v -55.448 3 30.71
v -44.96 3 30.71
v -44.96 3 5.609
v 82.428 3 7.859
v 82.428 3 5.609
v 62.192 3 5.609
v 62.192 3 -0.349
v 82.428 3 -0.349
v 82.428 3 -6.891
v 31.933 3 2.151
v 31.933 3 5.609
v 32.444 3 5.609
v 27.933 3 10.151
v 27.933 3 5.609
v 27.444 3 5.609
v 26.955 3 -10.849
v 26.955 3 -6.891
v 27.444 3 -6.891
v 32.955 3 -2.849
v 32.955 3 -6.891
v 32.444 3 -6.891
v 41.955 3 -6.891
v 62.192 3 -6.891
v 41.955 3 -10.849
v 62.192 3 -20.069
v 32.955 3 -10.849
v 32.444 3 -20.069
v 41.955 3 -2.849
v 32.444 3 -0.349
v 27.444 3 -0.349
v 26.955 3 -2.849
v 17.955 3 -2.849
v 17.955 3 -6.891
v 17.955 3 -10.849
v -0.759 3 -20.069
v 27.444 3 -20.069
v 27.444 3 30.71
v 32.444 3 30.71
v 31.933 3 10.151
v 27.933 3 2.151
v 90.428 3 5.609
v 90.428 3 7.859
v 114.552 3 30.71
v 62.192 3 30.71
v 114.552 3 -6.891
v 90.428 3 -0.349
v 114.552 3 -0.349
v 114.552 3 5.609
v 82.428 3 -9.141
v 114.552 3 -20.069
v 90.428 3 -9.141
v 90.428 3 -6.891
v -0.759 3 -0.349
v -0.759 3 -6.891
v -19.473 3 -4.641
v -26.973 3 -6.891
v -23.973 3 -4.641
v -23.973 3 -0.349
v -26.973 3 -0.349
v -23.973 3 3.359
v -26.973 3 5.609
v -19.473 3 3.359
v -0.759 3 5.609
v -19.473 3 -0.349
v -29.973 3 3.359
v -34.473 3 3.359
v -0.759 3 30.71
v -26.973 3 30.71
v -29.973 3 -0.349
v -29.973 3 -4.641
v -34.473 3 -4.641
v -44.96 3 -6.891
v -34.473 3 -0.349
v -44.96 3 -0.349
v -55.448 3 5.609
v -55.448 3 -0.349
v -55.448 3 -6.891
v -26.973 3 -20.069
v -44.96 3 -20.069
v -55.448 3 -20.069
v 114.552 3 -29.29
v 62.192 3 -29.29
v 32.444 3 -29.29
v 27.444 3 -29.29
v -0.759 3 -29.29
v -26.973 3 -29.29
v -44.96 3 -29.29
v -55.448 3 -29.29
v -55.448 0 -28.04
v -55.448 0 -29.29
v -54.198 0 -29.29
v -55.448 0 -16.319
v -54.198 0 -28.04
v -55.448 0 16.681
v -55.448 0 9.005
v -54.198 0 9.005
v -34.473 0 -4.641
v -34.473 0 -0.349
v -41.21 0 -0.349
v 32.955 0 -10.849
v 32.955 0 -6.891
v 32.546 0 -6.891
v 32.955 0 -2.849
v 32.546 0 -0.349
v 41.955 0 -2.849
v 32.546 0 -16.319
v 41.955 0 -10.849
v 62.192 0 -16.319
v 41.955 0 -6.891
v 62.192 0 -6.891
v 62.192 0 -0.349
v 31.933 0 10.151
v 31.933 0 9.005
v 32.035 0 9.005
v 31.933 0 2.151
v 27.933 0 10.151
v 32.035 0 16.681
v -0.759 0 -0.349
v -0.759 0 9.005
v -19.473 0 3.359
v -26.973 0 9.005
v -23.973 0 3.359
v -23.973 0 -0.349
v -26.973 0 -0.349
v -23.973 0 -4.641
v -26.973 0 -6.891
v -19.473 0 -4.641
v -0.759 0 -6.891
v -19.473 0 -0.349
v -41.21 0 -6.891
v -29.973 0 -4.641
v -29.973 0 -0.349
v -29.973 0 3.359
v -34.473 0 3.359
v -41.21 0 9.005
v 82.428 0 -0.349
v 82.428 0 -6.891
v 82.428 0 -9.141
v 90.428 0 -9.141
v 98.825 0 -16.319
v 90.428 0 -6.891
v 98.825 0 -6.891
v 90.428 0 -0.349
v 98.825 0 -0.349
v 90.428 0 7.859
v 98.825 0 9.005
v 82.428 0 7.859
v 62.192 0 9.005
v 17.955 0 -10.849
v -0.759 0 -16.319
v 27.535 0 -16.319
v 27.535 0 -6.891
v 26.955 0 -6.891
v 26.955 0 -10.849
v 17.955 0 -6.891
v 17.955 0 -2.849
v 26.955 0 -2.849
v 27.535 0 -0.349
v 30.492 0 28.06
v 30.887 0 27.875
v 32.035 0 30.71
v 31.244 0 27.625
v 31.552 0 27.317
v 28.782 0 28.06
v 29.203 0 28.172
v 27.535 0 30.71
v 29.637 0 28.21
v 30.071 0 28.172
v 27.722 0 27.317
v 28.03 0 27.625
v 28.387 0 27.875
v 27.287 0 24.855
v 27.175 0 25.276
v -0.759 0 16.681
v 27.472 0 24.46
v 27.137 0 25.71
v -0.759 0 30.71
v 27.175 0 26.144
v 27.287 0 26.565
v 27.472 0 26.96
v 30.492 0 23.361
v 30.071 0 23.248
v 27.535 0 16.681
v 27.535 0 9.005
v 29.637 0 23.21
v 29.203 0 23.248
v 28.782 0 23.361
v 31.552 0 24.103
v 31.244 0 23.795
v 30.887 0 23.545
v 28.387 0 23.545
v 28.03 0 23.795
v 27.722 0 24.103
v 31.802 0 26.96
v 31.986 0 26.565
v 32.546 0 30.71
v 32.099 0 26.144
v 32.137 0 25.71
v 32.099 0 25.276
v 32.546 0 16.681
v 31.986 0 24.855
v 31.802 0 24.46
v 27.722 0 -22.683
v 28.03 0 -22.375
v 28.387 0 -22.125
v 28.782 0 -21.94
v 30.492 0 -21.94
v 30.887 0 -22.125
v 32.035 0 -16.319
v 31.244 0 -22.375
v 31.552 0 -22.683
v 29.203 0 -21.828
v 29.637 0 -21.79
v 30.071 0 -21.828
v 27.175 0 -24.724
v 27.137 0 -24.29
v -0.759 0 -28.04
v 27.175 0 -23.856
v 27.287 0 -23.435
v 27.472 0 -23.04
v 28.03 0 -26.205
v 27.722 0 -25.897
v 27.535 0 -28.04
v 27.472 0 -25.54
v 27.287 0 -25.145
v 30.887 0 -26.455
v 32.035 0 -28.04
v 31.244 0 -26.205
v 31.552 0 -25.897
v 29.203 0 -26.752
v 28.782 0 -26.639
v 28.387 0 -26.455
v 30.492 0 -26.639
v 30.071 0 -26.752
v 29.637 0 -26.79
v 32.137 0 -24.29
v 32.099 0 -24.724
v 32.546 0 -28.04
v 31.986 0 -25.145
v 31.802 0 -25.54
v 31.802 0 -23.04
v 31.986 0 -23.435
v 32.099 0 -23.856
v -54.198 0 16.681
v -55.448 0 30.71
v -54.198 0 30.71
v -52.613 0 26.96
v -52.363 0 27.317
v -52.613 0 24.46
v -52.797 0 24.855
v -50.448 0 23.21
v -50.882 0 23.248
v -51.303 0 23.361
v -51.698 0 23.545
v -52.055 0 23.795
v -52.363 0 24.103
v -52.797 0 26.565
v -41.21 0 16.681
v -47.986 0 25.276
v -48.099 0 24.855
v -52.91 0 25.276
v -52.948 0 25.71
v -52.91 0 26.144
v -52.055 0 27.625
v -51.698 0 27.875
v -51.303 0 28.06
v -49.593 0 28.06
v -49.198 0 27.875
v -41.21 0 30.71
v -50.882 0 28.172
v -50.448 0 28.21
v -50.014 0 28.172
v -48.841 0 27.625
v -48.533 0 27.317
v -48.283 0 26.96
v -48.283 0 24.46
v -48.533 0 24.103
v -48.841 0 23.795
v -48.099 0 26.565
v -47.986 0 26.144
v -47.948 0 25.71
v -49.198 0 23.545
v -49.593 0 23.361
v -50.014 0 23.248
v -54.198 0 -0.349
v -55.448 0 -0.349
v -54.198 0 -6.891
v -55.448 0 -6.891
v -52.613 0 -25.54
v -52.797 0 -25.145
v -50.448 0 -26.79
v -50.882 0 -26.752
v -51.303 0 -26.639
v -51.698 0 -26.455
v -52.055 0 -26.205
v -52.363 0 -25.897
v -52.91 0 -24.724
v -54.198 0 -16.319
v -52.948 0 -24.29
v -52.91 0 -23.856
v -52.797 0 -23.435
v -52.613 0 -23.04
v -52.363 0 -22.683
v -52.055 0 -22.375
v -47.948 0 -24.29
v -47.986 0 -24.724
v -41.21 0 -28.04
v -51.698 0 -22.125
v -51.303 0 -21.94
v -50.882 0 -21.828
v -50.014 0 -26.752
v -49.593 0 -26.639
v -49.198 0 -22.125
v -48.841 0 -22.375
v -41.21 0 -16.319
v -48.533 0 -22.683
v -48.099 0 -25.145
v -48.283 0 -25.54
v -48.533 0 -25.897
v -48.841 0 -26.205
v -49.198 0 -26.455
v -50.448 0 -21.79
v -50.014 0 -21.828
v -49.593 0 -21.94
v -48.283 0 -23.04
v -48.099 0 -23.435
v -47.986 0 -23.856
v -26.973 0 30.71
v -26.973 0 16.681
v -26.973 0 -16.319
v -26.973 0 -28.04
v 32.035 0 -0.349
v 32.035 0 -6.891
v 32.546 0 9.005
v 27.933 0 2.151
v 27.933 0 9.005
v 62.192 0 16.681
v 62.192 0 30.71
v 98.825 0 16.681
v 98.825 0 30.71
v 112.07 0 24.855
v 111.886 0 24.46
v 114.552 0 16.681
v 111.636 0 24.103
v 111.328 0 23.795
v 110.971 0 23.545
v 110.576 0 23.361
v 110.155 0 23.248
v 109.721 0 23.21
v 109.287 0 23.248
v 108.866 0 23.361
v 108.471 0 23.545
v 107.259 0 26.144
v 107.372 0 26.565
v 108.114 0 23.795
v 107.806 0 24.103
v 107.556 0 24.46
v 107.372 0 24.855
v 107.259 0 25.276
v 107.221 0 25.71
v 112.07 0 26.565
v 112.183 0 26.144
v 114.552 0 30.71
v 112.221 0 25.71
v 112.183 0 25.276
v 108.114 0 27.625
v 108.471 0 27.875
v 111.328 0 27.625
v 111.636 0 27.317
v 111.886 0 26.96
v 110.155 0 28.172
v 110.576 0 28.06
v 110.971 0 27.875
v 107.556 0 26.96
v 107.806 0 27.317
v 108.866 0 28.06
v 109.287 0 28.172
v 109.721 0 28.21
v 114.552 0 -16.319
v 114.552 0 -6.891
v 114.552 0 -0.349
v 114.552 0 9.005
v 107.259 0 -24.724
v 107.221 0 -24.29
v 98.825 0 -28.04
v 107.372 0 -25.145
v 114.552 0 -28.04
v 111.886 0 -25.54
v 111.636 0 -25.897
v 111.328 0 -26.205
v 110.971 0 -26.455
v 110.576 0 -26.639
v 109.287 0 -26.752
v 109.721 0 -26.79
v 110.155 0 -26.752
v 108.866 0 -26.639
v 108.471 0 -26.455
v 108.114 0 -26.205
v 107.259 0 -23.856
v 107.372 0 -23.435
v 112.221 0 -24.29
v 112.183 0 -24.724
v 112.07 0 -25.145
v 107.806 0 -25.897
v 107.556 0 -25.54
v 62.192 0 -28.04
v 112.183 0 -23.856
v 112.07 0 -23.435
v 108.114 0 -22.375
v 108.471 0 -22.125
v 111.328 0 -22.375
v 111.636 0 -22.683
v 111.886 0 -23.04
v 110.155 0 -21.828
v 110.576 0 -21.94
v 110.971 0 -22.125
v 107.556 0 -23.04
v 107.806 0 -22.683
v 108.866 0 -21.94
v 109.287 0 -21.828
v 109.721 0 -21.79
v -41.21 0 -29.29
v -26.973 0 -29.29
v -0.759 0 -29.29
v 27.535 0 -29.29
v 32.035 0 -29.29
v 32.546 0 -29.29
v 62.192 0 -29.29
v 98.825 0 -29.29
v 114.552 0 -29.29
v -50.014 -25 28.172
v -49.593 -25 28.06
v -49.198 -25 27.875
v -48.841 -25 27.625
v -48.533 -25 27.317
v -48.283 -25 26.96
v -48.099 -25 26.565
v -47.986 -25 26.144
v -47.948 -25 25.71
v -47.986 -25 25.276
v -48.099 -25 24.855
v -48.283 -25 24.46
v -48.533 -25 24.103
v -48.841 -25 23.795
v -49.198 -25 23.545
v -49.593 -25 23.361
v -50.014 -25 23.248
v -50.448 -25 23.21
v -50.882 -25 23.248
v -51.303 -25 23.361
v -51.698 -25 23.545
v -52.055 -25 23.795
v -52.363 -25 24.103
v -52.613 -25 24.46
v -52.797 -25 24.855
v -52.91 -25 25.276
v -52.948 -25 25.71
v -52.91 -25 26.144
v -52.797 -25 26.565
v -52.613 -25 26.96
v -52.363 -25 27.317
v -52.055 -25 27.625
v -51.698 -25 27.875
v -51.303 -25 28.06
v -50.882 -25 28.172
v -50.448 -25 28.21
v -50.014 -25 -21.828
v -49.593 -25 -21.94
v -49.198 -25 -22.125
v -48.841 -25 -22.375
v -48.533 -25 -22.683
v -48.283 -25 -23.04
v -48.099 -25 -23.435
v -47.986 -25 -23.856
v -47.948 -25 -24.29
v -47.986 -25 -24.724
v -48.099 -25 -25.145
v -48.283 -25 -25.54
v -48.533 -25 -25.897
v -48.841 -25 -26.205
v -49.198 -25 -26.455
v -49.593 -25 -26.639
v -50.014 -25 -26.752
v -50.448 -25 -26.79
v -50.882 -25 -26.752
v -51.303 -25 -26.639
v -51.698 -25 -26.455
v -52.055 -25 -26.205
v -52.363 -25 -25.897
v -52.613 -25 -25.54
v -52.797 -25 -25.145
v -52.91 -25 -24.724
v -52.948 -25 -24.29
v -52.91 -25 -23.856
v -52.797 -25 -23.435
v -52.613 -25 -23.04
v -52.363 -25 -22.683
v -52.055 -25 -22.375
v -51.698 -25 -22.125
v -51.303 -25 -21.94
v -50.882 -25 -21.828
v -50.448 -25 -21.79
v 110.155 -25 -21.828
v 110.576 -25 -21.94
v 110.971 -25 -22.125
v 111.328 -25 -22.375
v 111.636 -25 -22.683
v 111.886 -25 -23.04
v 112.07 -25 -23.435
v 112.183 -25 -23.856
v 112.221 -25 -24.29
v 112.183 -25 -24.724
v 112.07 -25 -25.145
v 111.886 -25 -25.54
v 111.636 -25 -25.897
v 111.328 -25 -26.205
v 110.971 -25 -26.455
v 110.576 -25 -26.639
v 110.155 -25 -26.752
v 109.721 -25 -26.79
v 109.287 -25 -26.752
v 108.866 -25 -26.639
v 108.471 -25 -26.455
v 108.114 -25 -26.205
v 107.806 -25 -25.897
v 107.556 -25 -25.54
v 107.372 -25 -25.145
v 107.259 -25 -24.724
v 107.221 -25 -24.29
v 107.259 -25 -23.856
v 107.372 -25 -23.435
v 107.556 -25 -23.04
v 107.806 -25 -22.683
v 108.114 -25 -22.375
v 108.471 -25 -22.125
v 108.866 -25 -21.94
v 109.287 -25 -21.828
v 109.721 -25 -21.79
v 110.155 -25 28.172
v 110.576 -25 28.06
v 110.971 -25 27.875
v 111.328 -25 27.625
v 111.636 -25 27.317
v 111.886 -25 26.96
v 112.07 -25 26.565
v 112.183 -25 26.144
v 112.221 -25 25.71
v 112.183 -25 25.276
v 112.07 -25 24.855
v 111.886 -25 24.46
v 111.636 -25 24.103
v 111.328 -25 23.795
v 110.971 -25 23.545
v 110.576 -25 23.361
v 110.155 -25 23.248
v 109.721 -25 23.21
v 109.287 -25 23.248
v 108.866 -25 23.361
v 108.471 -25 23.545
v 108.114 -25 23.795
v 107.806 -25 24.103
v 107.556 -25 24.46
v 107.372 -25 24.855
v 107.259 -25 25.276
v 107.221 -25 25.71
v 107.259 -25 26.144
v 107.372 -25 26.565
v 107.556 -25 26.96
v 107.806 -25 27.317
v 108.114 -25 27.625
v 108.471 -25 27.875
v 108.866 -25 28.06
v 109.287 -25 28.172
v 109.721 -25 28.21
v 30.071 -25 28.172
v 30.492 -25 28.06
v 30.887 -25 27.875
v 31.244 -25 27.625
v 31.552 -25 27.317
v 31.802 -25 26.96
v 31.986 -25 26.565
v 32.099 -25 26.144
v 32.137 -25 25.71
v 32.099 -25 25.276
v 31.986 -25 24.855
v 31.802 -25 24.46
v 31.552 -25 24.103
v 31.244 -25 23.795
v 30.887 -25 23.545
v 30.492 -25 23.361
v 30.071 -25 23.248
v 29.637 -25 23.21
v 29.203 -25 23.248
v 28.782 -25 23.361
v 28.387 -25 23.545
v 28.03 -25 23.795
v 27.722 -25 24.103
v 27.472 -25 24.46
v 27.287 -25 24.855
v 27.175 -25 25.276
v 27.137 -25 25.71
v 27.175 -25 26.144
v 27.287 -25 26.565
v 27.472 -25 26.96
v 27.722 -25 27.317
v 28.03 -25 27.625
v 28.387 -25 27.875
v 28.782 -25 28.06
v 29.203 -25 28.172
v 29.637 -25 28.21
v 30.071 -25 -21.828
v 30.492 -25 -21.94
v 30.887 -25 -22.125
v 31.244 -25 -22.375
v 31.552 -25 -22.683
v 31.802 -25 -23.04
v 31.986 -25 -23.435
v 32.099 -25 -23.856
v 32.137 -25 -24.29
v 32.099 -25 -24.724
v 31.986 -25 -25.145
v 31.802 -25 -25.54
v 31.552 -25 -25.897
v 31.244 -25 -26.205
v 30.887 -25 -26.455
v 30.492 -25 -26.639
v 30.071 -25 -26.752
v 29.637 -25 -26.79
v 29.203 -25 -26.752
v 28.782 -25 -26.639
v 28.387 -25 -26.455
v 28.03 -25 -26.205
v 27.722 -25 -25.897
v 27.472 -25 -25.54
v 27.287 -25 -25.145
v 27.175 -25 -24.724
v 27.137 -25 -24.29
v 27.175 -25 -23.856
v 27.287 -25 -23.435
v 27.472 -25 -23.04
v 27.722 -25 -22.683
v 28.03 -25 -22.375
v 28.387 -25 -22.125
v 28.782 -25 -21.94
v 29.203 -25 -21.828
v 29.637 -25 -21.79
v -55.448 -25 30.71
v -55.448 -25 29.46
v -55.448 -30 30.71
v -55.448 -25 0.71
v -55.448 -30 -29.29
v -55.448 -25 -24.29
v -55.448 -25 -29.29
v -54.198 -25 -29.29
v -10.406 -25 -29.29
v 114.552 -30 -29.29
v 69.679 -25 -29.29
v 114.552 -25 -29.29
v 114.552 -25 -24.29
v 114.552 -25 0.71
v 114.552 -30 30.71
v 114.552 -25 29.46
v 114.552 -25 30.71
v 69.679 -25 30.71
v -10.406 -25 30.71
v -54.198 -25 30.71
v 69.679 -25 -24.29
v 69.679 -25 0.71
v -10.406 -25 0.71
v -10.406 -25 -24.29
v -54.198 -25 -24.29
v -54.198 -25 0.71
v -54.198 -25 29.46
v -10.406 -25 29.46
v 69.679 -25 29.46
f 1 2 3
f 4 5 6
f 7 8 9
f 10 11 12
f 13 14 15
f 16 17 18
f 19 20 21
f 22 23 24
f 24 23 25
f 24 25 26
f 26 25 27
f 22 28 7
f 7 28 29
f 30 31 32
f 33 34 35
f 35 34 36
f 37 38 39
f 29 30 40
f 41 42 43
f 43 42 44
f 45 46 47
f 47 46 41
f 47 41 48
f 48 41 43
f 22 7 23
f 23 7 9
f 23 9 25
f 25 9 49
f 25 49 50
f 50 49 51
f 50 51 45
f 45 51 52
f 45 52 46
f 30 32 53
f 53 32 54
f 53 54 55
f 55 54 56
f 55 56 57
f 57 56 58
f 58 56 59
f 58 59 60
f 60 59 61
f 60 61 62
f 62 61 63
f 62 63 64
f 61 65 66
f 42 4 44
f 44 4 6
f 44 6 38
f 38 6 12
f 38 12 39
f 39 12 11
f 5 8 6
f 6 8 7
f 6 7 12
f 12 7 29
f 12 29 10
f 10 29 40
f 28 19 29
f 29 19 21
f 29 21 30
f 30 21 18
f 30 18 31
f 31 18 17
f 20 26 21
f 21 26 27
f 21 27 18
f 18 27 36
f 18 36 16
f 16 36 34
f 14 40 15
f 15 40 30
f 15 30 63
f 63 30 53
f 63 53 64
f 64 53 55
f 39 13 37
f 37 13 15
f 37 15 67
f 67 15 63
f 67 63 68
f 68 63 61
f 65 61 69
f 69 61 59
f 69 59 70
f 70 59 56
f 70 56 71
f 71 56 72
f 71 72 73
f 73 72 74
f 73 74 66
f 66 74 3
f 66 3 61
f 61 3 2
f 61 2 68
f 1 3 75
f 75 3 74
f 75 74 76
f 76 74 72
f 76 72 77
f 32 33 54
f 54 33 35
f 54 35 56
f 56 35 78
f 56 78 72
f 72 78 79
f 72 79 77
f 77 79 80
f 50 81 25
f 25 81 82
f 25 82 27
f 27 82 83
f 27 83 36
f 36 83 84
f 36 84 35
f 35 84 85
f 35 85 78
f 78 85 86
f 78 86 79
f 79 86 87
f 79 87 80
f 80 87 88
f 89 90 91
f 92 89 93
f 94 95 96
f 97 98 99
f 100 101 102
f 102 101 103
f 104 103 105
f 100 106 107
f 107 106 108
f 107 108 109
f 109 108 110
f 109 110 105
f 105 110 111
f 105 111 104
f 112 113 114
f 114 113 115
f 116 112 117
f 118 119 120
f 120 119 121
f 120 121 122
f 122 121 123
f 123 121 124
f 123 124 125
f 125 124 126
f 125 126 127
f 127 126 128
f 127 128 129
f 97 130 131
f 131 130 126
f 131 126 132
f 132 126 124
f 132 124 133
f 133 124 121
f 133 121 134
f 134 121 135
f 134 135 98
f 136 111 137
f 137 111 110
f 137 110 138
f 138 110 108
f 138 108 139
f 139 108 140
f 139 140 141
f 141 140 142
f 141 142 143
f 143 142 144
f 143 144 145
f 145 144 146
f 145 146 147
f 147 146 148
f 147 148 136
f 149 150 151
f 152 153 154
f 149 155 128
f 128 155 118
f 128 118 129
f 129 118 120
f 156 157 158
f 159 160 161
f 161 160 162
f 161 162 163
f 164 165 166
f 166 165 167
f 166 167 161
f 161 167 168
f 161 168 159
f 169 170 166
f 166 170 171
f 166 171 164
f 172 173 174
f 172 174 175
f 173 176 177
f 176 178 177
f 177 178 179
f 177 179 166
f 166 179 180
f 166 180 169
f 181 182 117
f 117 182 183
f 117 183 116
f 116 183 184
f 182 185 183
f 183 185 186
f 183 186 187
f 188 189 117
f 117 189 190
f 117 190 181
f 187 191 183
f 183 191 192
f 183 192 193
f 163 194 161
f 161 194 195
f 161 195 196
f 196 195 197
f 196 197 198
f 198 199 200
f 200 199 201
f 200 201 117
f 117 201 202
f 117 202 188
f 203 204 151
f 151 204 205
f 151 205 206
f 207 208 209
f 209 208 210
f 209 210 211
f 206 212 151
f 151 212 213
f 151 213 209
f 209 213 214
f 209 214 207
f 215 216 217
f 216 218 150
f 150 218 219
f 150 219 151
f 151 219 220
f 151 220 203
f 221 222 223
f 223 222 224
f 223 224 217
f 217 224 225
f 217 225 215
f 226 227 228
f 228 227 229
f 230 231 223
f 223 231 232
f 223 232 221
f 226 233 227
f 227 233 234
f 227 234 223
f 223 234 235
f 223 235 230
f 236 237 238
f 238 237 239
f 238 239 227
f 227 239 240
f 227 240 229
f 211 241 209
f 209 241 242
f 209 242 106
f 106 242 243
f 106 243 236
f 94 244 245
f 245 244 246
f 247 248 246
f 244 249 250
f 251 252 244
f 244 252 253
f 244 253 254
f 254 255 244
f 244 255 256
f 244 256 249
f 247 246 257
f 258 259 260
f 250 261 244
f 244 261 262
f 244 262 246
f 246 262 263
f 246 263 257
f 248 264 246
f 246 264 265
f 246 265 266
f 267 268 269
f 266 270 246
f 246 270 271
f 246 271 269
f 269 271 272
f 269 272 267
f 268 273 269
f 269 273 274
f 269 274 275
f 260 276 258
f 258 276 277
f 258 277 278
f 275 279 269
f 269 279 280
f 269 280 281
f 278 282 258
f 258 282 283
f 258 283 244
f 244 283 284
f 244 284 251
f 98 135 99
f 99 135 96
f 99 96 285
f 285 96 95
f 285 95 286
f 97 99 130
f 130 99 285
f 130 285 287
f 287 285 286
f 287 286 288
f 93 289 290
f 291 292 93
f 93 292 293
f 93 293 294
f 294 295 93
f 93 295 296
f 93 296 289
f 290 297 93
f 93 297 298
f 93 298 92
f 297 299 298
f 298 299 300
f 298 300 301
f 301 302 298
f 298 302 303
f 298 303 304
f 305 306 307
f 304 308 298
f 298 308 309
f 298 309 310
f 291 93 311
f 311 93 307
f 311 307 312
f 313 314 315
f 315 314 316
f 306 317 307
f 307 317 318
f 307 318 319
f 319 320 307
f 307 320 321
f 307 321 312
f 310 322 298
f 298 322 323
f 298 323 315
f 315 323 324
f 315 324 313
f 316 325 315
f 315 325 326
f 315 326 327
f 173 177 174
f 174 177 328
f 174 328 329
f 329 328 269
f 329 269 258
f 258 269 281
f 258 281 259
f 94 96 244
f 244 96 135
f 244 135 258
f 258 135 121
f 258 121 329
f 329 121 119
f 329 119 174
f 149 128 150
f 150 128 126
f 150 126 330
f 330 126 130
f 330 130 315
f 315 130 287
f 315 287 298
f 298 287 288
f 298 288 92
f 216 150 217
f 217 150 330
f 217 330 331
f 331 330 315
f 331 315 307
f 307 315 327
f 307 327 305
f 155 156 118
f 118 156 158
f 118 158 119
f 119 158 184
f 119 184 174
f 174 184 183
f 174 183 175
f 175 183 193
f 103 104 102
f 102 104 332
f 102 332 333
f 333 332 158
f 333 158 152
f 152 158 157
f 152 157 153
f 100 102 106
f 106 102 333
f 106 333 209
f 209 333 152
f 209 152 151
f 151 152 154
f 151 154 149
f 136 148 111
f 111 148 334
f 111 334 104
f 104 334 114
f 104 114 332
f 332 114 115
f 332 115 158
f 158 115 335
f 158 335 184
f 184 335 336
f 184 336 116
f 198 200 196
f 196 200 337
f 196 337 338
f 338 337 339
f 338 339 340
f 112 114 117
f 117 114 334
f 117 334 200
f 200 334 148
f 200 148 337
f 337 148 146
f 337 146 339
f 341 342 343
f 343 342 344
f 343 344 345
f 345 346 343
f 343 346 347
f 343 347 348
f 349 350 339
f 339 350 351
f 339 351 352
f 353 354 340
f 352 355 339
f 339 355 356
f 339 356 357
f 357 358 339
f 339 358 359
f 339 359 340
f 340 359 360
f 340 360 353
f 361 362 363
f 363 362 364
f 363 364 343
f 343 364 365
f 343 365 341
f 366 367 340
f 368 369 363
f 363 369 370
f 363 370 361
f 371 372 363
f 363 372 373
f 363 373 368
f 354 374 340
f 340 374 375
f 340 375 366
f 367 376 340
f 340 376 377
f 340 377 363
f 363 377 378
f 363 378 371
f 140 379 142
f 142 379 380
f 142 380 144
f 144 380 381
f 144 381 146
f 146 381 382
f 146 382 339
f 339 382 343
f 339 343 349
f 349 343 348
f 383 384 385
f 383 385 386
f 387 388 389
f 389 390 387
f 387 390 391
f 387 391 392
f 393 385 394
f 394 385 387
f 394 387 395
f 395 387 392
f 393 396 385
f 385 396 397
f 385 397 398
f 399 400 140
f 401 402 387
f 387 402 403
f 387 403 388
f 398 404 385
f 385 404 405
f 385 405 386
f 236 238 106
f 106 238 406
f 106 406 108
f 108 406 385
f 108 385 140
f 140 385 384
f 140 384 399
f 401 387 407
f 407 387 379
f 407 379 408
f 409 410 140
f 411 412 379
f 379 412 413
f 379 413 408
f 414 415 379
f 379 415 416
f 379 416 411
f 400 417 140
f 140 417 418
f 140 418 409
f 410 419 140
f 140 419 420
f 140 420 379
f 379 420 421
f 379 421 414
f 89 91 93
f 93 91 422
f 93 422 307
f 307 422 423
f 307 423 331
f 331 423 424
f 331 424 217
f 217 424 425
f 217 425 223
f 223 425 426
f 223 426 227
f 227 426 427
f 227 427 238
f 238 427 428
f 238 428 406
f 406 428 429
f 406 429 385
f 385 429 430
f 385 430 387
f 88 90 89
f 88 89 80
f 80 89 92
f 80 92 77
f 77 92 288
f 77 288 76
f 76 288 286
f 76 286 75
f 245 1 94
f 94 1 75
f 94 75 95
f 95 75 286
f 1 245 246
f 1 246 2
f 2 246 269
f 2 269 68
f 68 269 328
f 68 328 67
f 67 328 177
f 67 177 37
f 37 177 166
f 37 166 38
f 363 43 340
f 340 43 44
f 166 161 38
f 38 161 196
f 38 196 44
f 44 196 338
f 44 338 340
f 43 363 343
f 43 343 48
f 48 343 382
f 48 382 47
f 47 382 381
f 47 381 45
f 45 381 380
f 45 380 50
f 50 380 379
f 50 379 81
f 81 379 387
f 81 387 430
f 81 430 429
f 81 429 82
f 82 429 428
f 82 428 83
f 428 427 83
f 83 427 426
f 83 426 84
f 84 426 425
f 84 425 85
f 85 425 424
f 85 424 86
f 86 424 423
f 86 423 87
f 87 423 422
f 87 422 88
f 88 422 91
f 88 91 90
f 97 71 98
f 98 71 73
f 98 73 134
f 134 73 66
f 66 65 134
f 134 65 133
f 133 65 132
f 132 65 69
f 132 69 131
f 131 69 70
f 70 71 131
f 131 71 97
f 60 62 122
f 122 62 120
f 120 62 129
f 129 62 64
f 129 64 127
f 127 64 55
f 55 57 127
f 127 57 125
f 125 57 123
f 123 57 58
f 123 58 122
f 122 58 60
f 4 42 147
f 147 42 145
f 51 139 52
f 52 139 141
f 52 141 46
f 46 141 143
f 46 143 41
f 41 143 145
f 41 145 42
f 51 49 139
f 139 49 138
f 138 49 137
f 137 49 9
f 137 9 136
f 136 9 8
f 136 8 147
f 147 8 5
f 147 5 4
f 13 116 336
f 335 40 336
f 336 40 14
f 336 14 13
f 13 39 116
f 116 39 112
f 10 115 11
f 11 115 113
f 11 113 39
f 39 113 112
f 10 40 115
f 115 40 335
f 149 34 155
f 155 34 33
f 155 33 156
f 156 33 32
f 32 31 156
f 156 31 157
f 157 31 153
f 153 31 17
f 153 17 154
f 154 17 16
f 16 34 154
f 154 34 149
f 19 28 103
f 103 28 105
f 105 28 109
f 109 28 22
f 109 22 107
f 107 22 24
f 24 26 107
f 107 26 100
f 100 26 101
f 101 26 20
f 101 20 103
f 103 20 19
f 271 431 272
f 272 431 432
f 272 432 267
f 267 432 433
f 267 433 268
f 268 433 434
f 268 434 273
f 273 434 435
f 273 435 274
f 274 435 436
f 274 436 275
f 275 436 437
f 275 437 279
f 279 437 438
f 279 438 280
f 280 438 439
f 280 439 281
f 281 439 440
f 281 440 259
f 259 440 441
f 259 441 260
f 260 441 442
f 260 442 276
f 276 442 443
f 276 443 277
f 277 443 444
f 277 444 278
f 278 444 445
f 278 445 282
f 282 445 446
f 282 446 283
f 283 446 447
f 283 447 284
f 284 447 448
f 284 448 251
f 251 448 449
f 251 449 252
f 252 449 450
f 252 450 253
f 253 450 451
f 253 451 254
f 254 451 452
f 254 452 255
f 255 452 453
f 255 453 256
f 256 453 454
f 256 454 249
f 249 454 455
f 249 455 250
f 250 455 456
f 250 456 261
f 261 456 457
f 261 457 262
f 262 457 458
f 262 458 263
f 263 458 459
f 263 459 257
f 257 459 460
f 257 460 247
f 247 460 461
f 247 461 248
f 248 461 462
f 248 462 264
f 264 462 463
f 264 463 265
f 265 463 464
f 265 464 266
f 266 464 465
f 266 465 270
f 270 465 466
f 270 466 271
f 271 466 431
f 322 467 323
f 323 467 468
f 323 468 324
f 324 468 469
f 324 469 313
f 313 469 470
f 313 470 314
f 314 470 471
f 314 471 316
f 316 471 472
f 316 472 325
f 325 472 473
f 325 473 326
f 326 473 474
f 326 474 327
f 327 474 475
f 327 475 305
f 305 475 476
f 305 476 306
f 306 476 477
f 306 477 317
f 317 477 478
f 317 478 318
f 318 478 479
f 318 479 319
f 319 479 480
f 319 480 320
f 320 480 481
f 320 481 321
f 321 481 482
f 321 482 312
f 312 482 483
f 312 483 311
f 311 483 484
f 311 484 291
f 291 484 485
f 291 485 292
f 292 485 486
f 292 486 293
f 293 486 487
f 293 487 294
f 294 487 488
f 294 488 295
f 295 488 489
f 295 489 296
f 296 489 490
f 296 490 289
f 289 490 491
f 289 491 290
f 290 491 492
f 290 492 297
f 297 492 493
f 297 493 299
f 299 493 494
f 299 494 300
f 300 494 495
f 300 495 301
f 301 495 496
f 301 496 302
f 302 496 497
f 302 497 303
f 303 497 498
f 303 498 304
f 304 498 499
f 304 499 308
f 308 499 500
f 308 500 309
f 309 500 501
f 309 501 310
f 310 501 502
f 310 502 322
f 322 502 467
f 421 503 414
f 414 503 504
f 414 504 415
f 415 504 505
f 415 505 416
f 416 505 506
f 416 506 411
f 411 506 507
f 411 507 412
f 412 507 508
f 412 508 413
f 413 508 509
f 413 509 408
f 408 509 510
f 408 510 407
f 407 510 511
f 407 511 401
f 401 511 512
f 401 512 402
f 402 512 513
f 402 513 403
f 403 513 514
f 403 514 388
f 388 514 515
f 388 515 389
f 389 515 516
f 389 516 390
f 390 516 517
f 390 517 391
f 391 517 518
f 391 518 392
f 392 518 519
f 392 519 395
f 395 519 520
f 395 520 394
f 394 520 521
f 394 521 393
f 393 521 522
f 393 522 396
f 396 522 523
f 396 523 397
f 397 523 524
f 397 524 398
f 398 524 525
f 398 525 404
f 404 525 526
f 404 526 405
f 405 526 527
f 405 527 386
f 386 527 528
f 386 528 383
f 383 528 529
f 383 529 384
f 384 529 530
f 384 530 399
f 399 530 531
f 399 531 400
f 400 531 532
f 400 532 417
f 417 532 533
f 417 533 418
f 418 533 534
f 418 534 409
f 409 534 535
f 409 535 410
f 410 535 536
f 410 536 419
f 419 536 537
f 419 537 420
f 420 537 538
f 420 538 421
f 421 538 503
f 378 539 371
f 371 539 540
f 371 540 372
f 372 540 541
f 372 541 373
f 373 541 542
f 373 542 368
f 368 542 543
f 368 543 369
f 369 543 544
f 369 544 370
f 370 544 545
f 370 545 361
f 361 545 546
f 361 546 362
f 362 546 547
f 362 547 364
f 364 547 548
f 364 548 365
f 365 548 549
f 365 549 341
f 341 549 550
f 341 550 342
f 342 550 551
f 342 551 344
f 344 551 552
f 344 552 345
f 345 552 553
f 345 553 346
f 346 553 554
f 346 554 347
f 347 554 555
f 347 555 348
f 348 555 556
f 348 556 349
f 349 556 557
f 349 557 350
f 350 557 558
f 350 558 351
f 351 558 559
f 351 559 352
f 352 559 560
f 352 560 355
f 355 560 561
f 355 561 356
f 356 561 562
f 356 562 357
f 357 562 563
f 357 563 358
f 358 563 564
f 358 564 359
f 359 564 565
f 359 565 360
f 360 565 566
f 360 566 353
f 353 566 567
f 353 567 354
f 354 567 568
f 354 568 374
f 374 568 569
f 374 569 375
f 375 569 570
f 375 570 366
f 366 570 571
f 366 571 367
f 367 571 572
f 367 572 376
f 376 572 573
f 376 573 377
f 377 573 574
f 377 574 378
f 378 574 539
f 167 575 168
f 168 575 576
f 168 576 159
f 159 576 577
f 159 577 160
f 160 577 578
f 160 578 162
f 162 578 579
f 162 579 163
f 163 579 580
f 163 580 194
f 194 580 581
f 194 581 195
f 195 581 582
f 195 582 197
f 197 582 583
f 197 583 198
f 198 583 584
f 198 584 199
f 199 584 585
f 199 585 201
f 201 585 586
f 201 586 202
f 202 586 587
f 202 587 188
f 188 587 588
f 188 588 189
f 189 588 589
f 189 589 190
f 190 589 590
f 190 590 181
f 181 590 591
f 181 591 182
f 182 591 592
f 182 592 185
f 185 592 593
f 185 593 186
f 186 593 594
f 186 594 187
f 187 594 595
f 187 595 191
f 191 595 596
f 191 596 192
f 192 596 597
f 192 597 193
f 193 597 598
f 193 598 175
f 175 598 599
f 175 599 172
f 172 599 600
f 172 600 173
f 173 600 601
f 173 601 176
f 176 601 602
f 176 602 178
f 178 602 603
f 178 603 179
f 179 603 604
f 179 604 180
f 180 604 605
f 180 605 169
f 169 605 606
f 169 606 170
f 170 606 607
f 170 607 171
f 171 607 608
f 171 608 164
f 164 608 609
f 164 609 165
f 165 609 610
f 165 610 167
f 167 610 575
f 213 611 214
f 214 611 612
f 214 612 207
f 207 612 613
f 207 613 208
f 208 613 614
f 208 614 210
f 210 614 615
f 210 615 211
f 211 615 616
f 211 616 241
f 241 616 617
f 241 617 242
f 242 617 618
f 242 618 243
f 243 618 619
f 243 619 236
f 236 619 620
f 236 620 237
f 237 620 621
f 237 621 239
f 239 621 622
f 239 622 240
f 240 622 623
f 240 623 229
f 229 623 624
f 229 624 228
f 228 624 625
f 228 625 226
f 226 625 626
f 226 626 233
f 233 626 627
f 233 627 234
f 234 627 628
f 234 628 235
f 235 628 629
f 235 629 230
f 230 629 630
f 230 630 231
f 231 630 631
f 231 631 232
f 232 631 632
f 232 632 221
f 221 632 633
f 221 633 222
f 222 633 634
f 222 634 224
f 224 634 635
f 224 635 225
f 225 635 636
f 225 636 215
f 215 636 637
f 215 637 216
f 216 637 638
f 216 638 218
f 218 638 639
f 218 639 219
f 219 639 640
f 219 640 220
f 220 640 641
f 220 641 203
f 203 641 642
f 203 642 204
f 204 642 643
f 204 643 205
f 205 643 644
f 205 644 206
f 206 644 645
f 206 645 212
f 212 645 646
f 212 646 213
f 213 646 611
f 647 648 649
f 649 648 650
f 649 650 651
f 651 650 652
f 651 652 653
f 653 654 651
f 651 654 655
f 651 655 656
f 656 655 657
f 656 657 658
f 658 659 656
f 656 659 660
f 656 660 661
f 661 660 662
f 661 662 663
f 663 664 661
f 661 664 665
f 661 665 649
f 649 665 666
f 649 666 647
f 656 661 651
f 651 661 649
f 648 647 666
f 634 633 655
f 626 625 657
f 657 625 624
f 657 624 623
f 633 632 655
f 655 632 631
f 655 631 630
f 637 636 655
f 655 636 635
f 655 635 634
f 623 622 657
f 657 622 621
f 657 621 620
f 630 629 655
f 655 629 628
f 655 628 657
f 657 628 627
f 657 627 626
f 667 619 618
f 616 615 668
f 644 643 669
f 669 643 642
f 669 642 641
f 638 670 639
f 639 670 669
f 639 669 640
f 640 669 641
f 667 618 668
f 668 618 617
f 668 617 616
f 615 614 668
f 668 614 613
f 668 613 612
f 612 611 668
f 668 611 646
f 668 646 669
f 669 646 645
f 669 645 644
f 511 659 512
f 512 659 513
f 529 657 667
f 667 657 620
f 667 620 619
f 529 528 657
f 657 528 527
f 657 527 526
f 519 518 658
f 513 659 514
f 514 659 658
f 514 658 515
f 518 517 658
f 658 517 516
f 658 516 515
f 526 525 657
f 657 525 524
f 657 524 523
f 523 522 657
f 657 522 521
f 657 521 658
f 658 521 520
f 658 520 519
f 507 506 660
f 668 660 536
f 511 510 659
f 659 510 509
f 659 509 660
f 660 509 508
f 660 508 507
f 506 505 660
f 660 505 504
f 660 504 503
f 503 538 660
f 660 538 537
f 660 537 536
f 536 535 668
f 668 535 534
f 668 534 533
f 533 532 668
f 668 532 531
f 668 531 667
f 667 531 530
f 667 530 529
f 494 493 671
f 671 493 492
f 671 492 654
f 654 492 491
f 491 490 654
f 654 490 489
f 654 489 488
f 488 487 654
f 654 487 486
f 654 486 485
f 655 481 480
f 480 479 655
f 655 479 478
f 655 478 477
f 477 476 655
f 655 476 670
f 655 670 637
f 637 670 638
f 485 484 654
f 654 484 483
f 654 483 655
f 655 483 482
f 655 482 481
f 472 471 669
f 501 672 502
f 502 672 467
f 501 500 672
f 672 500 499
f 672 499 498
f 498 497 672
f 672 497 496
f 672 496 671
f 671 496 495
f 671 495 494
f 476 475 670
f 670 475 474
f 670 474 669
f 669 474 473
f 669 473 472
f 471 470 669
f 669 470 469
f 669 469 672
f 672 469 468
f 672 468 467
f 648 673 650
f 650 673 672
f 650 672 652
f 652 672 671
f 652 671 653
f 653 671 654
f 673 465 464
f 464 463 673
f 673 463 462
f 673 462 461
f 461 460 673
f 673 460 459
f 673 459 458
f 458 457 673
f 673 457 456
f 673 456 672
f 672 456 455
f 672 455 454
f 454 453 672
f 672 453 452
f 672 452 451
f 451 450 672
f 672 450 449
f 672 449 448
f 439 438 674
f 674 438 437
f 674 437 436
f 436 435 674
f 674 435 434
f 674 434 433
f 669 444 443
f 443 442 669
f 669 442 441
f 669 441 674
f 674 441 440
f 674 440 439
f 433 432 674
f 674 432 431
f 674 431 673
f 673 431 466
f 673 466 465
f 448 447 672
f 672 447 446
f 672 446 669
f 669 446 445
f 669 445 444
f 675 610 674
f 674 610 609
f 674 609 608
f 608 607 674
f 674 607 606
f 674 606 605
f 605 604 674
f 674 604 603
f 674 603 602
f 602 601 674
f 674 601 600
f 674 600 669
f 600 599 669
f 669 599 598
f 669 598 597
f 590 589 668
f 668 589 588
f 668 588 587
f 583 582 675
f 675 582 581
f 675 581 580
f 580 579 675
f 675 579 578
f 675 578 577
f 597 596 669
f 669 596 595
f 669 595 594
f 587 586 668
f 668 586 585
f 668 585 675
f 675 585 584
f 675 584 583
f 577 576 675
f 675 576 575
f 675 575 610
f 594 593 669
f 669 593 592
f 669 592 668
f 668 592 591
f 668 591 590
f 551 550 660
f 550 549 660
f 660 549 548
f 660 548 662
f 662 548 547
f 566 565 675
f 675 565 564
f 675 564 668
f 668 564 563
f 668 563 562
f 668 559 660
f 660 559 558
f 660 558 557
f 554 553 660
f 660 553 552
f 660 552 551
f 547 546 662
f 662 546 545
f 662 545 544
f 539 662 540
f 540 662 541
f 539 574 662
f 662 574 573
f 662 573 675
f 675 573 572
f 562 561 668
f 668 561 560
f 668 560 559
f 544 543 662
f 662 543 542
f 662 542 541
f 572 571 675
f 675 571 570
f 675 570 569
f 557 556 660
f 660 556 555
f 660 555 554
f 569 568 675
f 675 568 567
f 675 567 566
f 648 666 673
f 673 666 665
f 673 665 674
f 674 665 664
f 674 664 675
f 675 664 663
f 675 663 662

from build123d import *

# Parameters (mm, degrees)
SKETCH_1_W      = 170
SKETCH_1_H      = 60
SKETCH_1_W_2    = 4.5
SKETCH_1_H_2    = 8
SKETCH_1_W_3    = 8
SKETCH_1_H_3    = 17
SKETCH_1_W_4    = 4
SKETCH_1_W_5    = 9
EXTRUDE_1_DEPTH = 3
SKETCH_2_R      = 2.5
EXTRUDE_2_DEPTH = 25
SKETCH_3_W      = 170
SKETCH_3_H      = 60
EXTRUDE_3_DEPTH = 5


with BuildPart() as part:
    # 草图1 → 凸台-拉伸1 (new body)
    with BuildSketch(Plane(origin=(0, 0, 0), x_dir=(1, 0, 0), z_dir=(0, 1, 0))):
        with Locations((29.55216782, -0.710346801)):
            Rectangle(SKETCH_1_W, SKETCH_1_H)
        with Locations((-32.22272899, 0.64083336)):
            Rectangle(SKETCH_1_W_2, SKETCH_1_H_2, mode=Mode.SUBTRACT)
        with Locations((-21.72272899, 0.64083336)):
            Rectangle(SKETCH_1_W_2, SKETCH_1_H_2, mode=Mode.SUBTRACT)
        with Locations((86.428168623, 0.64083336)):
            Rectangle(SKETCH_1_W_3, SKETCH_1_H_3, mode=Mode.SUBTRACT)
        with Locations((29.933311746, -6.150891768)):
            Rectangle(SKETCH_1_W_4, SKETCH_1_H_2, mode=Mode.SUBTRACT)
        with Locations((22.455458099, 6.849108232)):
            Rectangle(SKETCH_1_W_5, SKETCH_1_H_2, mode=Mode.SUBTRACT)
        with Locations((37.455458099, 6.849108232)):
            Rectangle(SKETCH_1_W_5, SKETCH_1_H_2, mode=Mode.SUBTRACT)
    extrude(amount=EXTRUDE_1_DEPTH)

    # 草图2 → 凸台-拉伸2 (add)
    with BuildSketch(Plane.XZ):
        with Locations(Location((-50.44783218, 25.710346801, 0), (0, 0, 90))):
            Circle(SKETCH_2_R)
        with Locations(Location((-50.44783218, -24.289653199, 0), (0, 0, 90))):
            Circle(SKETCH_2_R)
        with Locations(Location((109.721085394, -24.289653199, 0), (0, 0, 90))):
            Circle(SKETCH_2_R)
        with Locations(Location((109.721085394, 25.710346801, 0), (0, 0, 90))):
            Circle(SKETCH_2_R)
        with Locations(Location((29.636626607, 25.710346801, 0), (0, 0, 90))):
            Circle(SKETCH_2_R)
        with Locations(Location((29.636626607, -24.289653199, 0), (0, 0, 90))):
            Circle(SKETCH_2_R)
    extrude(amount=EXTRUDE_2_DEPTH)

    # 草图3 → 凸台-拉伸3 (add)
    with BuildSketch(Plane.XZ.offset(25)):
        with Locations((29.55216782, 0.710346801)):
            Rectangle(SKETCH_3_W, SKETCH_3_H)
    extrude(amount=EXTRUDE_3_DEPTH)


solid = part.part
